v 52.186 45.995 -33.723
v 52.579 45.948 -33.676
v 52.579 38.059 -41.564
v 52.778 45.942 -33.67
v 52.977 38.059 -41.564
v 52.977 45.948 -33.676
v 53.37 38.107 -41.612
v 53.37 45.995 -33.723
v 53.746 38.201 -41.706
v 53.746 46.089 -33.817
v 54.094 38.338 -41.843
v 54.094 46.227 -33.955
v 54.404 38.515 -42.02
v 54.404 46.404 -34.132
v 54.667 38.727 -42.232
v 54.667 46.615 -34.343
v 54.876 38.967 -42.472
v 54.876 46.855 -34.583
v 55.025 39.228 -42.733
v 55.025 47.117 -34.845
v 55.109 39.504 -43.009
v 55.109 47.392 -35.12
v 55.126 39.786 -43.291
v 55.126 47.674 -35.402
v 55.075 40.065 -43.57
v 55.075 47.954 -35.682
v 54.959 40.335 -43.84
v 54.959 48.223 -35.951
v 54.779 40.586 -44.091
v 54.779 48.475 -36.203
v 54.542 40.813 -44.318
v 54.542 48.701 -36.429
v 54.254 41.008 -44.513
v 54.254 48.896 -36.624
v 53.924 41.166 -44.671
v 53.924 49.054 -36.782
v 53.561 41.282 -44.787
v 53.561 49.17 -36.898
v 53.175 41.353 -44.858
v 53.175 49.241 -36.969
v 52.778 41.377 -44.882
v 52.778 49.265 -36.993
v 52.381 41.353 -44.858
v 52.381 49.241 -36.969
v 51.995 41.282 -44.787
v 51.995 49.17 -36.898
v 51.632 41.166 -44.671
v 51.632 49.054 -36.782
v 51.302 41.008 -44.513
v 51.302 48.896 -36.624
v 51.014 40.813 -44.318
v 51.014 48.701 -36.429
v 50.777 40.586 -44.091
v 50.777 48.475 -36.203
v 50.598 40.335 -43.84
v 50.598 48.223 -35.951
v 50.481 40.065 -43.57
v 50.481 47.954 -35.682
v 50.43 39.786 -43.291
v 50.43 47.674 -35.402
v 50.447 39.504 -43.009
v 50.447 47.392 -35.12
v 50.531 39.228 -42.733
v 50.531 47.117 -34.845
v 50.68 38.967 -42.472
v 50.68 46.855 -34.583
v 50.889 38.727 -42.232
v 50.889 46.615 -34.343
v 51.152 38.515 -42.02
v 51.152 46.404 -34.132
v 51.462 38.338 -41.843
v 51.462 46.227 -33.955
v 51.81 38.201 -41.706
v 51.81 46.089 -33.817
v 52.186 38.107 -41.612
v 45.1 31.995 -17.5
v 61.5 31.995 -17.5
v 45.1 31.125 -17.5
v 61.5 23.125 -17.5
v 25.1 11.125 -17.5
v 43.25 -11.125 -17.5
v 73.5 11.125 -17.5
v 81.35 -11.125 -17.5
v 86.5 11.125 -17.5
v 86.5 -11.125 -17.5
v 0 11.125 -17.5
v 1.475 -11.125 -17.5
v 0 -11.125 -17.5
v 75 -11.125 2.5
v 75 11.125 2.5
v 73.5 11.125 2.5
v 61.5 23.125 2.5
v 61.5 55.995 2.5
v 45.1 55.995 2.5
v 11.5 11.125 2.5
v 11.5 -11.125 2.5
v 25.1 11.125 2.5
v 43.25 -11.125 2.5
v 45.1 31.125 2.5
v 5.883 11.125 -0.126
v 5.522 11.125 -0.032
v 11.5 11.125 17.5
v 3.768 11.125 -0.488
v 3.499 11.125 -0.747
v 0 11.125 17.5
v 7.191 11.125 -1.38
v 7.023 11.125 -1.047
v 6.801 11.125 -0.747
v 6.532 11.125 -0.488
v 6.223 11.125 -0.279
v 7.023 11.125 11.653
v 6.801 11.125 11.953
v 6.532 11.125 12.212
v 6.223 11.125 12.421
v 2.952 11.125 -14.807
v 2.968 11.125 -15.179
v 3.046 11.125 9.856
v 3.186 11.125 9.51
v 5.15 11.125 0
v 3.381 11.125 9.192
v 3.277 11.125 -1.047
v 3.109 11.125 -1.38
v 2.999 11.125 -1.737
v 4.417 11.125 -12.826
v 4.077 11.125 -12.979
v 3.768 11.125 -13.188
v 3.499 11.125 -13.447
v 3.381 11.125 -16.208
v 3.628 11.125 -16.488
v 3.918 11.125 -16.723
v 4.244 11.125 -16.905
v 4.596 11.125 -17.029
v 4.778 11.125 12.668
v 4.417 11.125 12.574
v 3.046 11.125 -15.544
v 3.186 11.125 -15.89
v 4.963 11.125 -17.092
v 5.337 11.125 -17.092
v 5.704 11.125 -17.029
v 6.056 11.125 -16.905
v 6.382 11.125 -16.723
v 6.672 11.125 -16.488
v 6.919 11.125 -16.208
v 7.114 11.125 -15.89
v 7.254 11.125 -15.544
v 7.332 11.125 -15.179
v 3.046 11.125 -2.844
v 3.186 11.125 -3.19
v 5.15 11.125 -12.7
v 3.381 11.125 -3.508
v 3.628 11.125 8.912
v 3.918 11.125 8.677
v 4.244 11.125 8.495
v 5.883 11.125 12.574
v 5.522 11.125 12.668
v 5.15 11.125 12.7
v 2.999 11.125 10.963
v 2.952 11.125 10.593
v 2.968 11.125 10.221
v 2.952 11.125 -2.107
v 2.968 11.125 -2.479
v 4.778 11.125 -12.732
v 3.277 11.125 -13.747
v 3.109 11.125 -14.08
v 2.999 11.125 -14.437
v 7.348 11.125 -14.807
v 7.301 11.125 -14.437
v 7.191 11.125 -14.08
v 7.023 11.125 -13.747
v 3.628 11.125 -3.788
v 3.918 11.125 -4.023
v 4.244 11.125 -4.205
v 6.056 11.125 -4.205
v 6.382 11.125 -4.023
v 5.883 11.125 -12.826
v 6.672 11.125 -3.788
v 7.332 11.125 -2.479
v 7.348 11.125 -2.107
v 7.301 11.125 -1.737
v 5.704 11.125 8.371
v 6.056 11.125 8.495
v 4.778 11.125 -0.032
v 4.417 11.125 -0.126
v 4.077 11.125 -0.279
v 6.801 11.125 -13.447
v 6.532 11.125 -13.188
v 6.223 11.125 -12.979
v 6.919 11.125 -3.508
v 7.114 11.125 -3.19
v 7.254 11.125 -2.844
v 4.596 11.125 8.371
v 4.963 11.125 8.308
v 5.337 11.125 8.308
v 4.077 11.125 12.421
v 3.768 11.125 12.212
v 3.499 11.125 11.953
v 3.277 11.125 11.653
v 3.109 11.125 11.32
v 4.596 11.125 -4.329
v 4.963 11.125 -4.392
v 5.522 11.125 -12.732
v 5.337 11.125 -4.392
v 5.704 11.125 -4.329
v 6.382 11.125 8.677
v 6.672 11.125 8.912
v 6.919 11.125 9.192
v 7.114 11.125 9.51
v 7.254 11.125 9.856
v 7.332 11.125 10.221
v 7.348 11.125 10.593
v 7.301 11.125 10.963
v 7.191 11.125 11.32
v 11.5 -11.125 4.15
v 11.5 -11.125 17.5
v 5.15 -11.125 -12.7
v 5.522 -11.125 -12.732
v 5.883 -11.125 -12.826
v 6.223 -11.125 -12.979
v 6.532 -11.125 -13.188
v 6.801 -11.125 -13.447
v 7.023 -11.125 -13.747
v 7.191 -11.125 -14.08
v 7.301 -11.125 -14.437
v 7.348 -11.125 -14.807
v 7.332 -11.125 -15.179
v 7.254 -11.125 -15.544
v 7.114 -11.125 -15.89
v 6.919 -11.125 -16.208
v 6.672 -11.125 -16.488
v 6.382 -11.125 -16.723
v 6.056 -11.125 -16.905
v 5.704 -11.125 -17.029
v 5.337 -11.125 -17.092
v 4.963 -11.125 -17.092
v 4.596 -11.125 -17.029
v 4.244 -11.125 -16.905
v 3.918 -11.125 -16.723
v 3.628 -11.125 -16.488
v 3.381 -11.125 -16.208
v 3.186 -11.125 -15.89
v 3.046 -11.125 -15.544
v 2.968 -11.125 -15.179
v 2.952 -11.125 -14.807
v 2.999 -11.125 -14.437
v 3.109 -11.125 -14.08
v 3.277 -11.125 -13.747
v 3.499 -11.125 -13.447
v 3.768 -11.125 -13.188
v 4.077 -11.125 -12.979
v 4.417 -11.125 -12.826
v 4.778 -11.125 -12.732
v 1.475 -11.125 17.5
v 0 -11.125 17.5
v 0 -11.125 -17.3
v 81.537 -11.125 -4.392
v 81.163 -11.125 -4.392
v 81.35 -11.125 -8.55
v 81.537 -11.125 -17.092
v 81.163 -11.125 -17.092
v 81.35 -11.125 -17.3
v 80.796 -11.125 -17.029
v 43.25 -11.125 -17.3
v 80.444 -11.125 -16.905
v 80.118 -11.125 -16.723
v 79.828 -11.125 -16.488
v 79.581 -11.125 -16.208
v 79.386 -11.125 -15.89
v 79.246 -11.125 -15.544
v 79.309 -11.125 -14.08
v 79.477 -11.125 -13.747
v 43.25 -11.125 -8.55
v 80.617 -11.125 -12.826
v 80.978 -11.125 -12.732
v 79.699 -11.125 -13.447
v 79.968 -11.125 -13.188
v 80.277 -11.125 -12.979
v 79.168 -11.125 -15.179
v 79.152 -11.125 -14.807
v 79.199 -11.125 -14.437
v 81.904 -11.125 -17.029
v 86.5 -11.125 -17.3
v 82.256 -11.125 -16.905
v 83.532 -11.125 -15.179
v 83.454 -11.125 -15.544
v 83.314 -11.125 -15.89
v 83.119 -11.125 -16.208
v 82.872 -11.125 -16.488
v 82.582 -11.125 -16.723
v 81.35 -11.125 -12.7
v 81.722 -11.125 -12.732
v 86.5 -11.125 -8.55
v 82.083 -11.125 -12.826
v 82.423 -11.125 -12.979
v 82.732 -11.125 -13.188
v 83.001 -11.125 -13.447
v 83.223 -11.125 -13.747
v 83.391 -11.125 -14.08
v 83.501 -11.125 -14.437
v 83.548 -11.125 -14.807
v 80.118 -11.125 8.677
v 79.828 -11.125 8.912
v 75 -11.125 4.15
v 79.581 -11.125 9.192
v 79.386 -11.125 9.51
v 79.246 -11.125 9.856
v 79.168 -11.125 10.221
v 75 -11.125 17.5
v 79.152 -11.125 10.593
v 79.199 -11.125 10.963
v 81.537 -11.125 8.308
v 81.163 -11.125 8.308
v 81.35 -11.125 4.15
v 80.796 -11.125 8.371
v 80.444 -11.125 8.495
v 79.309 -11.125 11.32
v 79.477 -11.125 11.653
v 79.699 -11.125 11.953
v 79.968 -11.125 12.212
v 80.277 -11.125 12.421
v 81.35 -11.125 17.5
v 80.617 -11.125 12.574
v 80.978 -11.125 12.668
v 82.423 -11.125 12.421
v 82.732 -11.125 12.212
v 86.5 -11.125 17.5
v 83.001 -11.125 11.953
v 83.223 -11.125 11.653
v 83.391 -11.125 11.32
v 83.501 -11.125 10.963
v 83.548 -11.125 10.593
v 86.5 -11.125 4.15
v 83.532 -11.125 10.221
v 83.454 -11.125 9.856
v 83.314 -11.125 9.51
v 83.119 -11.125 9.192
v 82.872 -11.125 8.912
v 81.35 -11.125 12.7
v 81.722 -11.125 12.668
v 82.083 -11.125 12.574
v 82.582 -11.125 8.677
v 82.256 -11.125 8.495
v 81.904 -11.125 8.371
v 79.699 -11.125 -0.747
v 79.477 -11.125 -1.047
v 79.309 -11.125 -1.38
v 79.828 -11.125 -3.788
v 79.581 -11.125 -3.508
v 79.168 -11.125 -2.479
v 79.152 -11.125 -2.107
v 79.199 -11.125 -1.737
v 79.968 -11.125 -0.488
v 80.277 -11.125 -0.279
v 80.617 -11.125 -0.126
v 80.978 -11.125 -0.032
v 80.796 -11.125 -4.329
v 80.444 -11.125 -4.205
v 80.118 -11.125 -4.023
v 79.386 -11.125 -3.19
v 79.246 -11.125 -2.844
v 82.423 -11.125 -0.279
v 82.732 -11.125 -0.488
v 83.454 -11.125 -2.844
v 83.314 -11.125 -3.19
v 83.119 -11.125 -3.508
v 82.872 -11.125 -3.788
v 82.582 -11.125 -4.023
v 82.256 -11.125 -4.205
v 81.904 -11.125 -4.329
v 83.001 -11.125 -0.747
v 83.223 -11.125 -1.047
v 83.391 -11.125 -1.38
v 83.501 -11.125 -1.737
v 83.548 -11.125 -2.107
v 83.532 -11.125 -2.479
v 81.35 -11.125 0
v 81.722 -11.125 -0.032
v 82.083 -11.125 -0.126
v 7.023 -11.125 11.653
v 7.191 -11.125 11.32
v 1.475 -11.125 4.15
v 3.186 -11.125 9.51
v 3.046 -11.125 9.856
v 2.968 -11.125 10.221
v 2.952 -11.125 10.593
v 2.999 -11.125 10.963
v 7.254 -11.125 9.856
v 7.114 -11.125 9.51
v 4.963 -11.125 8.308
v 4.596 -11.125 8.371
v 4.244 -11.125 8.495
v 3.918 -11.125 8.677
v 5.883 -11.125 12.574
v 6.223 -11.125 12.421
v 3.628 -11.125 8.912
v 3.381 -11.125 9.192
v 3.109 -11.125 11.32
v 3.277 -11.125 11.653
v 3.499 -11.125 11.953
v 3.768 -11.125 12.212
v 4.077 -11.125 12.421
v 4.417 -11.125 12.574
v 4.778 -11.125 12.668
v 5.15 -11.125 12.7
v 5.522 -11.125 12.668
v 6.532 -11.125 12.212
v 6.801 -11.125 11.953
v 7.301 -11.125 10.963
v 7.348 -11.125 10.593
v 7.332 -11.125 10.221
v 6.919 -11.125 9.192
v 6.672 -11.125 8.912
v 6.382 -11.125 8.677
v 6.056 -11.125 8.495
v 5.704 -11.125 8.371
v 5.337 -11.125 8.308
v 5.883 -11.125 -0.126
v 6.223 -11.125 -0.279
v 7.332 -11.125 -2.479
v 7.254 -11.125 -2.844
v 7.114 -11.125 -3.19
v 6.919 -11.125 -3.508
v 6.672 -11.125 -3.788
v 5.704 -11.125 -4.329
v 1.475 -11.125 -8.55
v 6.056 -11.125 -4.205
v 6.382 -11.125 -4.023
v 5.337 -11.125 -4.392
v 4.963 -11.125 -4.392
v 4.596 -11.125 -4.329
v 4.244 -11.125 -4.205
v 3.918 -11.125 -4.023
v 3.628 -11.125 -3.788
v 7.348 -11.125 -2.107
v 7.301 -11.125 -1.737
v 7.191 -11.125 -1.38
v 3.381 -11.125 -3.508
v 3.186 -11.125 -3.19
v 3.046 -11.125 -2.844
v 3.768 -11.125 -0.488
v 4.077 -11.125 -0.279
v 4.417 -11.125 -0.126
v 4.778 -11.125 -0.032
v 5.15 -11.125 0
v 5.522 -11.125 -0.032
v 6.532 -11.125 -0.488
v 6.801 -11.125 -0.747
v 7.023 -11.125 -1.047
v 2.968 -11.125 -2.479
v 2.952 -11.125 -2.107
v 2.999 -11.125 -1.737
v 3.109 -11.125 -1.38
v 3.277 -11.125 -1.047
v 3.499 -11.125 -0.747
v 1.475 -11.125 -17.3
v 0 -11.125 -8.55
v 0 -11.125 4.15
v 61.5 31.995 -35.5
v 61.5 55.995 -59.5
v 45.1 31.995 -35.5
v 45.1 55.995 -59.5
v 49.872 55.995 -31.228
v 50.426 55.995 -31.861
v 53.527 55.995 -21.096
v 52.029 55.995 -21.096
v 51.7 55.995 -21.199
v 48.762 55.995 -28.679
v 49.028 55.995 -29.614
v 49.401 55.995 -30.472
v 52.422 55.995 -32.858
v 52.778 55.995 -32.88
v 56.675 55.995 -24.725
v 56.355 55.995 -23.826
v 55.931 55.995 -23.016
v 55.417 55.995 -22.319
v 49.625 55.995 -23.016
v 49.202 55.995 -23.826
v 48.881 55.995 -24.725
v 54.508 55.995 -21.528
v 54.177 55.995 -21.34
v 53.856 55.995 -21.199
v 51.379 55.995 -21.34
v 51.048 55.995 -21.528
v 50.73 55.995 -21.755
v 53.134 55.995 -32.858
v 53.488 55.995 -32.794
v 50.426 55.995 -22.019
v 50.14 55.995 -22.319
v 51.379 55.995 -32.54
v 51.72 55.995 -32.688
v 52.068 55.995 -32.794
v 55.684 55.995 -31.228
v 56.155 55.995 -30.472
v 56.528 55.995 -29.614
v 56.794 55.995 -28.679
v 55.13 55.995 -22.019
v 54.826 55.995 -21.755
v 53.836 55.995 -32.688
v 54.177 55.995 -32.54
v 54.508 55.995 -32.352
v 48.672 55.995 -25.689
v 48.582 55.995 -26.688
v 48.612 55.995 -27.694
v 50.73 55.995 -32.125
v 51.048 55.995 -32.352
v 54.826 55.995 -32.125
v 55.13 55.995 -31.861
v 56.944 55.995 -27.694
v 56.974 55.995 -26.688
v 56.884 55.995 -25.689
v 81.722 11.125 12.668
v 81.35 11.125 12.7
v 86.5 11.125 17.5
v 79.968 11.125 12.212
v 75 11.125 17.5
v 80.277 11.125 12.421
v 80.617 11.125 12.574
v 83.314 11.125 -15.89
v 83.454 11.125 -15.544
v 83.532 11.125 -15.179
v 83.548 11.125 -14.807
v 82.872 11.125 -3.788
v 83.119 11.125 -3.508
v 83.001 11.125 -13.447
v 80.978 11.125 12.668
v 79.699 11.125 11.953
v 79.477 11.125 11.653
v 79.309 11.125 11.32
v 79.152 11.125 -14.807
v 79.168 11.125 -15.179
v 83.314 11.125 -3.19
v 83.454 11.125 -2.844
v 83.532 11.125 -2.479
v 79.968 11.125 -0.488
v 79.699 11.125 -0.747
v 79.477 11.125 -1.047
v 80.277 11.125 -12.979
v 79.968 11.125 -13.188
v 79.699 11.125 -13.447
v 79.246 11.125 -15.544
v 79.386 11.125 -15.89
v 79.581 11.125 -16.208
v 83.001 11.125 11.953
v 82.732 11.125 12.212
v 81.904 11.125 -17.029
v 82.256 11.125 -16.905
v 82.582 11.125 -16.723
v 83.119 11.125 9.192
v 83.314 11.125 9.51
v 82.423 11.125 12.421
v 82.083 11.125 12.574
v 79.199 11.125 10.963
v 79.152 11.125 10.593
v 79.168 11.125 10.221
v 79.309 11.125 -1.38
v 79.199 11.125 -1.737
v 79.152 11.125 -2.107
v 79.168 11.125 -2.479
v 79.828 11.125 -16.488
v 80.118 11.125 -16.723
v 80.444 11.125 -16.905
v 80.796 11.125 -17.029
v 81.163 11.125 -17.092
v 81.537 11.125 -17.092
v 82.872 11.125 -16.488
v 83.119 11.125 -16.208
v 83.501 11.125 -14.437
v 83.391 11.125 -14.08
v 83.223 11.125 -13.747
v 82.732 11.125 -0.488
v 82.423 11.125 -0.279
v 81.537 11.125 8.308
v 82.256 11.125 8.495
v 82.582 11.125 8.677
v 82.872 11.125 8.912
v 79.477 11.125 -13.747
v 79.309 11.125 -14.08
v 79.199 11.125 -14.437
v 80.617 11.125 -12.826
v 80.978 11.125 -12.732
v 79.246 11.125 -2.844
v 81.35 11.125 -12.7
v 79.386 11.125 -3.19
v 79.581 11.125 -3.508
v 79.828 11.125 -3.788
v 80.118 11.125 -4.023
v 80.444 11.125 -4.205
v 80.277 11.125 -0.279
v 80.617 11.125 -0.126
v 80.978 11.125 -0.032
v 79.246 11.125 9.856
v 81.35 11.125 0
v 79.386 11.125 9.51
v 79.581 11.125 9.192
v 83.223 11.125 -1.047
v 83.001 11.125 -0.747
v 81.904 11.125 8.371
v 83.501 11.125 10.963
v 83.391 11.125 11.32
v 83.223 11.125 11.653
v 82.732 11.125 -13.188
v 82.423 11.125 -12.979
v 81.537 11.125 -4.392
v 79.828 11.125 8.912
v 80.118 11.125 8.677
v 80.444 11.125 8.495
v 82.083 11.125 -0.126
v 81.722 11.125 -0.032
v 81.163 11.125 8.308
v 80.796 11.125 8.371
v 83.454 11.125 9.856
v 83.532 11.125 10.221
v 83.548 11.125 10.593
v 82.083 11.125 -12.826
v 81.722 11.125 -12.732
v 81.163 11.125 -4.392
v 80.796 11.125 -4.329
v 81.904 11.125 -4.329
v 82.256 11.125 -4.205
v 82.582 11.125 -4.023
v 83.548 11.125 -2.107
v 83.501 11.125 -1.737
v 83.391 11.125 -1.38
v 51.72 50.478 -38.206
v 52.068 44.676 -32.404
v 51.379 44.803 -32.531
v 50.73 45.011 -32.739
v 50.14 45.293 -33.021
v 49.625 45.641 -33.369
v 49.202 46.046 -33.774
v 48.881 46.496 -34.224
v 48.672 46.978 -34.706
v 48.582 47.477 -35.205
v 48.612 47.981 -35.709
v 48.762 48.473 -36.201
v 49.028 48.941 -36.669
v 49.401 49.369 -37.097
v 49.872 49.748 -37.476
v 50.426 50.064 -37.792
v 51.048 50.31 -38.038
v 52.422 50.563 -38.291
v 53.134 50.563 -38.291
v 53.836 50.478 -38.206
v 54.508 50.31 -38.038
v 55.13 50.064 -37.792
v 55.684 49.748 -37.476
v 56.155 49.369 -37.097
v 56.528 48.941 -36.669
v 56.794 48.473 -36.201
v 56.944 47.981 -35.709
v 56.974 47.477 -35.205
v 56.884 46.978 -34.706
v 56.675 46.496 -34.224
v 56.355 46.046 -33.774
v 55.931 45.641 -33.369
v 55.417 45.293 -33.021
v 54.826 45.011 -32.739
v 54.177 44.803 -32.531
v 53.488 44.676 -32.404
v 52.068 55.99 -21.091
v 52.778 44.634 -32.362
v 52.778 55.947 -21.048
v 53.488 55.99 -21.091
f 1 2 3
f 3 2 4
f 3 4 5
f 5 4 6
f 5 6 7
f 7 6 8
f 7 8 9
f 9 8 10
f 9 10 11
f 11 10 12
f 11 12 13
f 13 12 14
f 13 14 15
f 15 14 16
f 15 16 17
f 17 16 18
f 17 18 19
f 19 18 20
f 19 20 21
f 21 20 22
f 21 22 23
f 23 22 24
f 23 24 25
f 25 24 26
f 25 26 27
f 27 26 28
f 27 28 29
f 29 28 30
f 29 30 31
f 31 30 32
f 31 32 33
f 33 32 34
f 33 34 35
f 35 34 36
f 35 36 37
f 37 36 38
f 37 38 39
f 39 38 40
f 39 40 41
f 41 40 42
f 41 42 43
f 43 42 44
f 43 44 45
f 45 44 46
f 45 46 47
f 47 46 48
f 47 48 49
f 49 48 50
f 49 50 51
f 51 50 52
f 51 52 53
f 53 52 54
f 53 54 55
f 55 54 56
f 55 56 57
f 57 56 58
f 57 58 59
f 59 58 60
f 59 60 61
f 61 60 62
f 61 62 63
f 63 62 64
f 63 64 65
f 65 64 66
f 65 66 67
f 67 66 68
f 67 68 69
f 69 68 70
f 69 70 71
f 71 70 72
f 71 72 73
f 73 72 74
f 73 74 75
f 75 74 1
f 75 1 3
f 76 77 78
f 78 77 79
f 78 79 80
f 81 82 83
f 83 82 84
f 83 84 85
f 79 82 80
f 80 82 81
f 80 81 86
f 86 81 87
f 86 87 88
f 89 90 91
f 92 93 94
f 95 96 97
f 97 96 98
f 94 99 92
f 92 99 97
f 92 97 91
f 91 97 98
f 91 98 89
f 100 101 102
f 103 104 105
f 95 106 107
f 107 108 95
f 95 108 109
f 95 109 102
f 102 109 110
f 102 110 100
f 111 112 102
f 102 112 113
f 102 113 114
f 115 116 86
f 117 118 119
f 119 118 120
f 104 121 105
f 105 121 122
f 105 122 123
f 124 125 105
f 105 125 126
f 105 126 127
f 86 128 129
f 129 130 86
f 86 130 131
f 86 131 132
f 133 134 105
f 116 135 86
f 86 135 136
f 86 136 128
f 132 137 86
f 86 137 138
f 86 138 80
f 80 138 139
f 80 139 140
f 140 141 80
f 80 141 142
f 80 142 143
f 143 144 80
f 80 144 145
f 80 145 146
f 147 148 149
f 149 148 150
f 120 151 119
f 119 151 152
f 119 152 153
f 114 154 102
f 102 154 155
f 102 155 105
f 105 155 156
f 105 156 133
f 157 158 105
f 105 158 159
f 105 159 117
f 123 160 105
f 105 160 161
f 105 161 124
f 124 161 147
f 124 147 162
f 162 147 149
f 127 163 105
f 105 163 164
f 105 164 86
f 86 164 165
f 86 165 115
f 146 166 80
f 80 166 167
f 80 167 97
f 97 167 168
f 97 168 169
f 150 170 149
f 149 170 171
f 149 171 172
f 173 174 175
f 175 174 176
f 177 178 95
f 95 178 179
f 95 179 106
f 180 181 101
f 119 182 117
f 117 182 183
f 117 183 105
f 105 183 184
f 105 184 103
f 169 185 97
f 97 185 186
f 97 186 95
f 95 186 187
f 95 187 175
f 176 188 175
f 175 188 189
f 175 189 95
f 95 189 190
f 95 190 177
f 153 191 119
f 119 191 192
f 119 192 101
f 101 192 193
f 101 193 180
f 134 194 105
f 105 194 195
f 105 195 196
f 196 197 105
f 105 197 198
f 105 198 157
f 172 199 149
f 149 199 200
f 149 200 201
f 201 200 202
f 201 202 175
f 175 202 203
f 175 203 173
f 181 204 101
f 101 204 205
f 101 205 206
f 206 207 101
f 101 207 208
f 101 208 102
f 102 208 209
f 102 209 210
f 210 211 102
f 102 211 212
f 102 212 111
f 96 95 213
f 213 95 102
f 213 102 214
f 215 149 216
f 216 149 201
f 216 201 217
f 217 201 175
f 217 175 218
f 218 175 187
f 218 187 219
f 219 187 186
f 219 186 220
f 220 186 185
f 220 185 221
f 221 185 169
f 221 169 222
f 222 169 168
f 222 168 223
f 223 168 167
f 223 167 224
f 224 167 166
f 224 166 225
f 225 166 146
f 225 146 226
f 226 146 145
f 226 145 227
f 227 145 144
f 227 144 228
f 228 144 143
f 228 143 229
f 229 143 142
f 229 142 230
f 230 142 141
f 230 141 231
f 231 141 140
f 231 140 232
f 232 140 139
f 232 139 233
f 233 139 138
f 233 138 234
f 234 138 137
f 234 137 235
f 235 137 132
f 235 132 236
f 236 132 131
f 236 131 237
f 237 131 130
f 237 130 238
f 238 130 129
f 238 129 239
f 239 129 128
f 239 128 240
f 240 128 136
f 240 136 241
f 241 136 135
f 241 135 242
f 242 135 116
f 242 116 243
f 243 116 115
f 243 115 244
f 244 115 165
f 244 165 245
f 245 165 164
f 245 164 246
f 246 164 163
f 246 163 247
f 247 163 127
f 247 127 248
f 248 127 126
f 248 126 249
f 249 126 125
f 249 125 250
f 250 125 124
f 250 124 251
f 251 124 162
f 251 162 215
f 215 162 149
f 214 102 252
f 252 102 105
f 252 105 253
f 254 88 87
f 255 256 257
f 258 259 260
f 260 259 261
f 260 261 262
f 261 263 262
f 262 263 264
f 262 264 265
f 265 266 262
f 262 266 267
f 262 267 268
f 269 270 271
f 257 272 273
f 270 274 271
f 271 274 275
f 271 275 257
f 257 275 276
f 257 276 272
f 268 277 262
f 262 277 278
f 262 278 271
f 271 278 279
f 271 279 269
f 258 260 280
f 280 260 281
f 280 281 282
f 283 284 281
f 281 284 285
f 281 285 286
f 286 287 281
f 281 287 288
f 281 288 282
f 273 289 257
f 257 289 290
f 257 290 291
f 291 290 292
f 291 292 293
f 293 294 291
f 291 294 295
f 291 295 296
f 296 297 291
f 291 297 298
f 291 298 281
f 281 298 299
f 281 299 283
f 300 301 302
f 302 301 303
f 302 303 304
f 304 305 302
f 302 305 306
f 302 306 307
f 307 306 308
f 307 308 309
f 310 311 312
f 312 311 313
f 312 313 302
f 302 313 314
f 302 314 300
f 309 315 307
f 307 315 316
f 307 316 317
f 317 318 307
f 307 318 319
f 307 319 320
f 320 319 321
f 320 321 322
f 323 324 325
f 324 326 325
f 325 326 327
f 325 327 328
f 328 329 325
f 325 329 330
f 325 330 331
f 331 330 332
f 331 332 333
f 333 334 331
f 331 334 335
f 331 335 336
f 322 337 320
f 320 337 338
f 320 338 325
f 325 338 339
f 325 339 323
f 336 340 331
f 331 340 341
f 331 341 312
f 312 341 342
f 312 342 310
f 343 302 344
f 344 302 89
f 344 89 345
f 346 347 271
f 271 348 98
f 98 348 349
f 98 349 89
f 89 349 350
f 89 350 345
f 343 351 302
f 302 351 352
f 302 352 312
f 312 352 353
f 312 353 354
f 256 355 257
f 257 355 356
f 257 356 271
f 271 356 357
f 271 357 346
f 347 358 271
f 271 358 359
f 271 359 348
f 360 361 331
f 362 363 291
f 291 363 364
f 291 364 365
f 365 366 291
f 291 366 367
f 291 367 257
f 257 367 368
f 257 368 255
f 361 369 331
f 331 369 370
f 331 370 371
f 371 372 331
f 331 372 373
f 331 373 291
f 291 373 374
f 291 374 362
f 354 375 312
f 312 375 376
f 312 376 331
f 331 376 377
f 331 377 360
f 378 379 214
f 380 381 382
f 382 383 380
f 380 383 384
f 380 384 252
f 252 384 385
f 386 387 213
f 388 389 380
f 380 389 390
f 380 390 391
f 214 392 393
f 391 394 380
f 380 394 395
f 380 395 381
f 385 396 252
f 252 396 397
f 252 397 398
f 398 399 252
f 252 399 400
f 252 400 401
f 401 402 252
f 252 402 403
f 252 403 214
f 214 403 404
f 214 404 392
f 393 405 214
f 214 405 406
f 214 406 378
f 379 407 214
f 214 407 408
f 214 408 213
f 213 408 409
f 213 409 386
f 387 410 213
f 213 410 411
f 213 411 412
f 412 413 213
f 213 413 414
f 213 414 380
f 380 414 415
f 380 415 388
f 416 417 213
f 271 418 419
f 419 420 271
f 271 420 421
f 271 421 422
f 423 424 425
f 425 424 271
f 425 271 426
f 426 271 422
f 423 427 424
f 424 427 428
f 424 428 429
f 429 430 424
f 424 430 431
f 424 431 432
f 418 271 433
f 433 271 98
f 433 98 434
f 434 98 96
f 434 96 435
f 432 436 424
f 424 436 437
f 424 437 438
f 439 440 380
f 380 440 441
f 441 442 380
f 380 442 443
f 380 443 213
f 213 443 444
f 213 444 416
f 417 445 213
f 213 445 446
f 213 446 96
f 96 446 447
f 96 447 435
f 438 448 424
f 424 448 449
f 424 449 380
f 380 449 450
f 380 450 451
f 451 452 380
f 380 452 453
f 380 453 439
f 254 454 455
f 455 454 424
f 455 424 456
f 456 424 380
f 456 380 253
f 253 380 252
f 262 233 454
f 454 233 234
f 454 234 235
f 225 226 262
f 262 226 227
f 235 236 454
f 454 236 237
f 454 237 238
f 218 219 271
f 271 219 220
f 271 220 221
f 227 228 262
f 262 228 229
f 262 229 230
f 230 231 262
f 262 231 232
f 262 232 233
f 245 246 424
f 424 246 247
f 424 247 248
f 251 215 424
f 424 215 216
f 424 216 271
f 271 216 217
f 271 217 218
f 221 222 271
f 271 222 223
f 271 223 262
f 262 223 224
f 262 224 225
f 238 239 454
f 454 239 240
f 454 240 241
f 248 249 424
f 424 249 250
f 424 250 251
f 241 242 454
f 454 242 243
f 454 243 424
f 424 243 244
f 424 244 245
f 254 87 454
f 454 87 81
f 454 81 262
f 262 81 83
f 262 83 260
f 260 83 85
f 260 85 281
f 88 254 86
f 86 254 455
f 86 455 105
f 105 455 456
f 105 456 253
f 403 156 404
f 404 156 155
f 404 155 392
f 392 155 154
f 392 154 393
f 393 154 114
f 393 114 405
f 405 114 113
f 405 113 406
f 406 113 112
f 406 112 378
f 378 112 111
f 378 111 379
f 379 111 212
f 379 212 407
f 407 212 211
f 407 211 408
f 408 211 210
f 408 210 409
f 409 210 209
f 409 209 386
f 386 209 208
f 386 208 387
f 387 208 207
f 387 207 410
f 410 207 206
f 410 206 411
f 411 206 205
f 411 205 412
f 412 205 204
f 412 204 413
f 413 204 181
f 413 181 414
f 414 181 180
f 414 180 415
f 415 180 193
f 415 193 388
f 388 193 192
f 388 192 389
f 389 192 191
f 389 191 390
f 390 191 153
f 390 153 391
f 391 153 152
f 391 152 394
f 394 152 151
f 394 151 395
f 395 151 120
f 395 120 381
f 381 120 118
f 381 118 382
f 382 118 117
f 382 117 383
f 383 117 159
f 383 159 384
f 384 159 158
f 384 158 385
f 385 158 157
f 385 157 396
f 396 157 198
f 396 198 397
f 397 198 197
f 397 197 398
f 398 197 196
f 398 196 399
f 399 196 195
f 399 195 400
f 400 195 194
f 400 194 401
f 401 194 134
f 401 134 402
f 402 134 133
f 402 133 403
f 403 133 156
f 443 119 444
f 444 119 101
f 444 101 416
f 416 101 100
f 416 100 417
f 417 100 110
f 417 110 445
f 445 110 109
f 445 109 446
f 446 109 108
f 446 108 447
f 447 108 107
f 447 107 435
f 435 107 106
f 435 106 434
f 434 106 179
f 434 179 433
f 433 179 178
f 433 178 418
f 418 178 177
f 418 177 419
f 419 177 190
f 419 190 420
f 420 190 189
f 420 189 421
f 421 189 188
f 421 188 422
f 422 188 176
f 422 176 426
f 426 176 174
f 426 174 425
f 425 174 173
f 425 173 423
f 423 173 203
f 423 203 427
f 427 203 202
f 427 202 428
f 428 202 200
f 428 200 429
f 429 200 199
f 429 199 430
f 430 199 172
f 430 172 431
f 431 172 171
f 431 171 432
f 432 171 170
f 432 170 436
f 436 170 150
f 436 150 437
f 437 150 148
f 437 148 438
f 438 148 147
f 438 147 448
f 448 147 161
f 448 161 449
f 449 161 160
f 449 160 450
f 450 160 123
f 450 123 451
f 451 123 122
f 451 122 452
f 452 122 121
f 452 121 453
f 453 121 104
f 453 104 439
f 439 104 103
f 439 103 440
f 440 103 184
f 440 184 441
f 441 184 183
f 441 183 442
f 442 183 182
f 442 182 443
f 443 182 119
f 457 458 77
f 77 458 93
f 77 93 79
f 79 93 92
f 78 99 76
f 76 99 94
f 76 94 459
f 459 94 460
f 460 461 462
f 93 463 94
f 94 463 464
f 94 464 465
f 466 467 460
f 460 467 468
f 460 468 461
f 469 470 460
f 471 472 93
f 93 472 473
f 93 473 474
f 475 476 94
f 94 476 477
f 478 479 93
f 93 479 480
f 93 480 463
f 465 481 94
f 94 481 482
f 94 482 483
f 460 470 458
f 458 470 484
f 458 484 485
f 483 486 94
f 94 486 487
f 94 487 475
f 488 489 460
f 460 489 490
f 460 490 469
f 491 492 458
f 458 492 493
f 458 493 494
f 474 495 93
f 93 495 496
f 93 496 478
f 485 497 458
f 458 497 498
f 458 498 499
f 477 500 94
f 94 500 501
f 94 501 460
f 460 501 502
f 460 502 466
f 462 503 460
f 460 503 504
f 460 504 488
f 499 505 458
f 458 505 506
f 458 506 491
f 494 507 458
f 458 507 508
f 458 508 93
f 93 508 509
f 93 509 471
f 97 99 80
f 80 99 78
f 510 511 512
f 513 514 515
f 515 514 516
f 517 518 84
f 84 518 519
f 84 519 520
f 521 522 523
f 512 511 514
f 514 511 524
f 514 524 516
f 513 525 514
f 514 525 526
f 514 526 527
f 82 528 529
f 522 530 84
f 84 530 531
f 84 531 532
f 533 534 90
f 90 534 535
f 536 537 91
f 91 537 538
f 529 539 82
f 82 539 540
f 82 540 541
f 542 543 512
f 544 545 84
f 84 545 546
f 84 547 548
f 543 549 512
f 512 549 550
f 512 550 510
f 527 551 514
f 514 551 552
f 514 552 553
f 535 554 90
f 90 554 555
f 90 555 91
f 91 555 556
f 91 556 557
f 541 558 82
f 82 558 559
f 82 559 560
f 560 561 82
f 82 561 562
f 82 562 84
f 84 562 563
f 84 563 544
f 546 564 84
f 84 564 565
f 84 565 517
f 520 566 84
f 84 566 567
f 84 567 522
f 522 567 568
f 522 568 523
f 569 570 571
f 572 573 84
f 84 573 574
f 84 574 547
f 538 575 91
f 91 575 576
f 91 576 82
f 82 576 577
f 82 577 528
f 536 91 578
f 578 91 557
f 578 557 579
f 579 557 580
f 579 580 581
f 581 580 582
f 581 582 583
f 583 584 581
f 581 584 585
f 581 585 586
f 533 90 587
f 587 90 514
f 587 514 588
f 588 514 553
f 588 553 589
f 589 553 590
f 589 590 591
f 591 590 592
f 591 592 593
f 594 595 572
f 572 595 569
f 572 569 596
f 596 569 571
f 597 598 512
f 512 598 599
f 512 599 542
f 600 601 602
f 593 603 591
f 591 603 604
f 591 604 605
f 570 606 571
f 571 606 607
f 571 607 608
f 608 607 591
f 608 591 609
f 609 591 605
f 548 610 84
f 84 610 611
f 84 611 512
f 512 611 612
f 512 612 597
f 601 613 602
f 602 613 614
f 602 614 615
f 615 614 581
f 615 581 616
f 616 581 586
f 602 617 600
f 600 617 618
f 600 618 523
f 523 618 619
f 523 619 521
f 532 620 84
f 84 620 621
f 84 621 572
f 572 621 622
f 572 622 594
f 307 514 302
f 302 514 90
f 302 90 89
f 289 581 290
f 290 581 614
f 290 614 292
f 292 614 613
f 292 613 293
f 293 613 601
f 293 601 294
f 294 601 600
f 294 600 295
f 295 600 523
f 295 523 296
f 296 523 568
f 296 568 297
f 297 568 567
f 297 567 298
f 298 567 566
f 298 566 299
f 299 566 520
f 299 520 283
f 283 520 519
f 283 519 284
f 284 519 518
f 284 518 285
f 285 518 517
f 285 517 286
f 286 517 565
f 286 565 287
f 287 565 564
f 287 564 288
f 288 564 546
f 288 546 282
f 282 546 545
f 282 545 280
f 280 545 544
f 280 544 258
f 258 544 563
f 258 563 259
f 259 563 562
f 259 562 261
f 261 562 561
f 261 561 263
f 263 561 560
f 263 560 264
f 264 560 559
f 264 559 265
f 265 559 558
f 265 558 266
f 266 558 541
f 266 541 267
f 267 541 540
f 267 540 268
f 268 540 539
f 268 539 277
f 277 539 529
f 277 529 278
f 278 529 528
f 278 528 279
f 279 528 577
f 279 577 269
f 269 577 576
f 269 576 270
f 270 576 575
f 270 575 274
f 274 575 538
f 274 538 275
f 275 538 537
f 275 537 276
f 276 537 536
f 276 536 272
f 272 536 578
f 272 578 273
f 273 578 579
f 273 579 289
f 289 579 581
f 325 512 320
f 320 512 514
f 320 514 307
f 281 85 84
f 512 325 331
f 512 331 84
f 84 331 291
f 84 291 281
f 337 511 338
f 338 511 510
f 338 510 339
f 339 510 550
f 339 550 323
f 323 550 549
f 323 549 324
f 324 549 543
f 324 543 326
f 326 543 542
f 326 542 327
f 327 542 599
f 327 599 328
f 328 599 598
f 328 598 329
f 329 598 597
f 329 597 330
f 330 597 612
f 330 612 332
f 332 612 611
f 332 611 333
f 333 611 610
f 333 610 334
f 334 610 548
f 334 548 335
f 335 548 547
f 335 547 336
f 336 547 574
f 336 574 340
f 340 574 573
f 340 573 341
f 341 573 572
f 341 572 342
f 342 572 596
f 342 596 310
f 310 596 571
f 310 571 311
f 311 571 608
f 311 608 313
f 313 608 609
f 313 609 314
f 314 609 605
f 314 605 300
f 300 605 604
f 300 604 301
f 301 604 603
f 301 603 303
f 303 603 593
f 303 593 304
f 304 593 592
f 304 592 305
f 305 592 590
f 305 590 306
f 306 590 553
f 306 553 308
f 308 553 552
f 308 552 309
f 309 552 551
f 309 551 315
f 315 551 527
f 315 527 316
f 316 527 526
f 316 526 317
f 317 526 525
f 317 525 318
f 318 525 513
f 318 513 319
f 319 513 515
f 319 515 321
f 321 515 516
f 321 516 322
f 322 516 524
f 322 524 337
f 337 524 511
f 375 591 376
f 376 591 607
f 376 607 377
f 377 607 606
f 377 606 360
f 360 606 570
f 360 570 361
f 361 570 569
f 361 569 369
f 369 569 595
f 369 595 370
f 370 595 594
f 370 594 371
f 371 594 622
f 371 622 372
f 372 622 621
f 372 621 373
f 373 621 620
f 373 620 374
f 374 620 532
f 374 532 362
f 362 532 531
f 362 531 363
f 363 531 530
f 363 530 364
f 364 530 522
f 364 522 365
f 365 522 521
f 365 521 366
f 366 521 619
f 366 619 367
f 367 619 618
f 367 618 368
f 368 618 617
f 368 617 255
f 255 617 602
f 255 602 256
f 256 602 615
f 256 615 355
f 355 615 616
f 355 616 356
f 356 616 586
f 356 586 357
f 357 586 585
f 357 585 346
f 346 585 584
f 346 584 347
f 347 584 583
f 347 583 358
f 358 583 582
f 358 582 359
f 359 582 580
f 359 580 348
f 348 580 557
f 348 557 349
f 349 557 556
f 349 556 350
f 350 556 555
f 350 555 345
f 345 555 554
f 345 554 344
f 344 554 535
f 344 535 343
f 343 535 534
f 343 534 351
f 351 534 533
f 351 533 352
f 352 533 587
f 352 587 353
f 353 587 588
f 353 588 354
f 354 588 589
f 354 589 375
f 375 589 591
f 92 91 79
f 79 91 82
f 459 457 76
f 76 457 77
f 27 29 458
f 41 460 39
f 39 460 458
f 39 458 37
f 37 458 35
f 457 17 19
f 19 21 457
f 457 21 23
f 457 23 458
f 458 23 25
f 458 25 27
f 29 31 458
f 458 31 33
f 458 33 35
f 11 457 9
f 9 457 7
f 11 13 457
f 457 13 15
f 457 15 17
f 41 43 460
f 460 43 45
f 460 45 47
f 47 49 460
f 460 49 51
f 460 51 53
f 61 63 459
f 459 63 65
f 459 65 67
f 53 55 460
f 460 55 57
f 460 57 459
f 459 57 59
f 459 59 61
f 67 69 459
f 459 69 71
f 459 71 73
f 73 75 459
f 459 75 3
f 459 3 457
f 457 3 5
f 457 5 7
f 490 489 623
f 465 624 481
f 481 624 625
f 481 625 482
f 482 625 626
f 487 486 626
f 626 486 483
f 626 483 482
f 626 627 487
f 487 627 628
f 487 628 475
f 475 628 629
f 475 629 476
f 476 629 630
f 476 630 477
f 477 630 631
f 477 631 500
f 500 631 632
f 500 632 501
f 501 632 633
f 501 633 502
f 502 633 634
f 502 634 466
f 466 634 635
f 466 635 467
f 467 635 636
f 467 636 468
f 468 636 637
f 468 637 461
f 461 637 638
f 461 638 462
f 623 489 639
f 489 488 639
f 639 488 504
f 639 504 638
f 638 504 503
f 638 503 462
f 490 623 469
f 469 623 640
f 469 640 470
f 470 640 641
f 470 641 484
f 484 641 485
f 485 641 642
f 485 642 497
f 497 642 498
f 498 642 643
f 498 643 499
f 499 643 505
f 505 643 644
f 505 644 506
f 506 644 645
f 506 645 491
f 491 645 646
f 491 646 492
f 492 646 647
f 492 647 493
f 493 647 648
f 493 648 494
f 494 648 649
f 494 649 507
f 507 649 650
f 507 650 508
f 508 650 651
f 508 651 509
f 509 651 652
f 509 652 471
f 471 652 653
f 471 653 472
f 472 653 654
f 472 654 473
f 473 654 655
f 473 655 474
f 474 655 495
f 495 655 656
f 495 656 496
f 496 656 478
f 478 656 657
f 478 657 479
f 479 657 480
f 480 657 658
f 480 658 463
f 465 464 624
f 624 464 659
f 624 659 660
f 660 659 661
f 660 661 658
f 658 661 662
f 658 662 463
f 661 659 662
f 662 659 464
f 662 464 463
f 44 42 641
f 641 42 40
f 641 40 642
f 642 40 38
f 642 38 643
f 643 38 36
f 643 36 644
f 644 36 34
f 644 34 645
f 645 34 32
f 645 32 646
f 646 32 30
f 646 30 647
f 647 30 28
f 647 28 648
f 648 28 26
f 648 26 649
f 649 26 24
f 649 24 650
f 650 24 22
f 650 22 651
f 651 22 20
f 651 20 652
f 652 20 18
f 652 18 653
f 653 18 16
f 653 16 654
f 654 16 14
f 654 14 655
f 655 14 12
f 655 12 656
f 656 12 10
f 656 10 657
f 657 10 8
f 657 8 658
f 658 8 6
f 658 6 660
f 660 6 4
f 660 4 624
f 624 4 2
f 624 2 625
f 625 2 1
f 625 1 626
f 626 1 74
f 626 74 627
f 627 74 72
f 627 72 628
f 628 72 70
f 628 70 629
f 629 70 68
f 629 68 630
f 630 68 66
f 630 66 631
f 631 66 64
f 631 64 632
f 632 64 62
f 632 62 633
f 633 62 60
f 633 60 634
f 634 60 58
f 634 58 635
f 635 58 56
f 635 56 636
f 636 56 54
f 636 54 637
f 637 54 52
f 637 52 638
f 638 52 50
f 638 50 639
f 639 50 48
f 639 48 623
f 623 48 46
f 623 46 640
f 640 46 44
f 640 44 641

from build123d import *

# Parameters (mm, degrees)
SKETCH1_W           = 35
SKETCH1_H           = 22.25
BOSS_EXTRUDE1_DEPTH = 11.5
SKETCH2_R           = 2.2
CUT_EXTRUDE1_DEPTH  = 31.554255023
LPATTERN1_COUNT     = 3
LPATTERN1_PITCH     = 12.7
SKETCH3_W           = 20
SKETCH3_H           = 22.25
BOSS_EXTRUDE2_DEPTH = 50
SKETCH4_W           = 16.4
SKETCH4_H           = 20
BOSS_EXTRUDE3_DEPTH = 44.87
CHAMFER1_SIZE       = 20
SKETCH5_W           = 20
SKETCH5_H           = 22.25
BOSS_EXTRUDE4_DEPTH = 15
CHAMFER2_SIZE       = 12
SKETCH6_W           = 16.4
SKETCH6_H           = 24
BOSS_EXTRUDE5_DEPTH = 18
BOSS_EXTRUDE6_DEPTH = 16.4
SKETCH11_R          = 2.35
CUT_EXTRUDE4_DEPTH  = 119.961327802
SKETCH12_R          = 4.2
CUT_EXTRUDE5_DEPTH  = 16


with BuildPart() as part:
    # Sketch1 → Boss-Extrude1 (new body)
    with BuildSketch(Plane(origin=(0, 0, 0), x_dir=(0, 0, -1), z_dir=(1, 0, 0))):
        Rectangle(SKETCH1_W, SKETCH1_H)
    extrude(amount=BOSS_EXTRUDE1_DEPTH)

    # Sketch2 → Cut-Extrude1 (cut, through all)
    with BuildSketch(Plane(origin=(0, 11.125, 0), x_dir=(1, 0, 0), z_dir=(0, 1, 0))):
        with Locations(Location((5.15, -10.5, 0), (0, 0, 270))):
            Circle(SKETCH2_R)
    cut_extrude1 = extrude(amount=-CUT_EXTRUDE1_DEPTH, mode=Mode.SUBTRACT)

    # LPattern1: Cut-Extrude1 ×3
    with Locations(*[(0, 0, -i * LPATTERN1_PITCH) for i in range(1, LPATTERN1_COUNT)]):
        add(cut_extrude1, mode=Mode.SUBTRACT)


with BuildPart() as body_2:
    # Mirror3: mirrored copy
    add(part.part.mirror(Plane(origin=(43.25, 0, 0), x_dir=(0, 0, 1), z_dir=(1, 0, 0))))


with BuildPart() as part_1:
    add(part.part)

    # Sketch3 → Boss-Extrude2 (add)
    with BuildSketch(Plane(origin=(11.5, 0, 0), x_dir=(0, 0, -1), z_dir=(1, 0, 0))):
        with Locations((7.5, 0)):
            Rectangle(SKETCH3_W, SKETCH3_H)
    extrude(amount=BOSS_EXTRUDE2_DEPTH)

    # Sketch4 → Boss-Extrude3 (add)
    with BuildSketch(Plane(origin=(0, 11.125, 0), x_dir=(1, 0, 0), z_dir=(0, 1, 0))):
        with Locations((53.3, 7.5)):
            Rectangle(SKETCH4_W, SKETCH4_H)
    extrude(amount=BOSS_EXTRUDE3_DEPTH)

    # Chamfer1
    chamfer1_edges = [part_1.edges().sort_by_distance(p)[0] for p in [
        (45.1, 11.125, -7.5),
    ]]
    chamfer(chamfer1_edges, length=CHAMFER1_SIZE)

    add(body_2.part)  # Boss-Extrude4 merges body 2
    # Sketch5 → Boss-Extrude4 (add)
    with BuildSketch(Plane(origin=(61.5, 0, 0), x_dir=(0, 0, -1), z_dir=(1, 0, 0))):
        with Locations((7.5, 0)):
            Rectangle(SKETCH5_W, SKETCH5_H)
    extrude(amount=BOSS_EXTRUDE4_DEPTH)

    # Chamfer2
    chamfer2_edges = [part_1.edges().sort_by_distance(p)[0] for p in [
        (61.5, 11.125, -7.5),
    ]]
    chamfer(chamfer2_edges, length=CHAMFER2_SIZE)

    # Sketch6 → Boss-Extrude5 (add)
    with BuildSketch(Plane(origin=(0, 0, -17.5), x_dir=(-1, 0, 0), z_dir=(0, 0, -1))):
        with Locations((-53.3, 43.995)):
            Rectangle(SKETCH6_W, SKETCH6_H)
    extrude(amount=BOSS_EXTRUDE5_DEPTH)

    # Sketch7 → Boss-Extrude6 (add)
    with BuildSketch(Plane(origin=(61.5, 0, 0), x_dir=(0, 0, -1), z_dir=(1, 0, 0))):
        Polygon((35.5, 31.995), (59.5, 55.995), (35.5, 55.995), align=None)
    extrude(amount=-BOSS_EXTRUDE6_DEPTH)

    # Sketch11 → Cut-Extrude4 (cut, through all)
    with BuildSketch(Plane(origin=(0, -1.7525, -1.7525), x_dir=(1, 0, 0), z_dir=(0, -0.7071067811865509, -0.7071067811865441))):
        with Locations(Location((52.778087488, -58.643931452, 0), (0, 0, 270))):
            Circle(SKETCH11_R)
    extrude(amount=-CUT_EXTRUDE4_DEPTH, mode=Mode.SUBTRACT)

    # Sketch12 → Cut-Extrude5 (cut)
    with BuildSketch(Plane(origin=(0, 17.449710754, 17.449710754), x_dir=(1, 0, 0), z_dir=(0, 0.7071067811865464, 0.7071067811865488))):
        with Locations(Location((52.778087488, 58.643931452, 0), (0, 0, 270))):
            Circle(SKETCH12_R)
    extrude(amount=-CUT_EXTRUDE5_DEPTH, mode=Mode.SUBTRACT)


solid = part_1.part
